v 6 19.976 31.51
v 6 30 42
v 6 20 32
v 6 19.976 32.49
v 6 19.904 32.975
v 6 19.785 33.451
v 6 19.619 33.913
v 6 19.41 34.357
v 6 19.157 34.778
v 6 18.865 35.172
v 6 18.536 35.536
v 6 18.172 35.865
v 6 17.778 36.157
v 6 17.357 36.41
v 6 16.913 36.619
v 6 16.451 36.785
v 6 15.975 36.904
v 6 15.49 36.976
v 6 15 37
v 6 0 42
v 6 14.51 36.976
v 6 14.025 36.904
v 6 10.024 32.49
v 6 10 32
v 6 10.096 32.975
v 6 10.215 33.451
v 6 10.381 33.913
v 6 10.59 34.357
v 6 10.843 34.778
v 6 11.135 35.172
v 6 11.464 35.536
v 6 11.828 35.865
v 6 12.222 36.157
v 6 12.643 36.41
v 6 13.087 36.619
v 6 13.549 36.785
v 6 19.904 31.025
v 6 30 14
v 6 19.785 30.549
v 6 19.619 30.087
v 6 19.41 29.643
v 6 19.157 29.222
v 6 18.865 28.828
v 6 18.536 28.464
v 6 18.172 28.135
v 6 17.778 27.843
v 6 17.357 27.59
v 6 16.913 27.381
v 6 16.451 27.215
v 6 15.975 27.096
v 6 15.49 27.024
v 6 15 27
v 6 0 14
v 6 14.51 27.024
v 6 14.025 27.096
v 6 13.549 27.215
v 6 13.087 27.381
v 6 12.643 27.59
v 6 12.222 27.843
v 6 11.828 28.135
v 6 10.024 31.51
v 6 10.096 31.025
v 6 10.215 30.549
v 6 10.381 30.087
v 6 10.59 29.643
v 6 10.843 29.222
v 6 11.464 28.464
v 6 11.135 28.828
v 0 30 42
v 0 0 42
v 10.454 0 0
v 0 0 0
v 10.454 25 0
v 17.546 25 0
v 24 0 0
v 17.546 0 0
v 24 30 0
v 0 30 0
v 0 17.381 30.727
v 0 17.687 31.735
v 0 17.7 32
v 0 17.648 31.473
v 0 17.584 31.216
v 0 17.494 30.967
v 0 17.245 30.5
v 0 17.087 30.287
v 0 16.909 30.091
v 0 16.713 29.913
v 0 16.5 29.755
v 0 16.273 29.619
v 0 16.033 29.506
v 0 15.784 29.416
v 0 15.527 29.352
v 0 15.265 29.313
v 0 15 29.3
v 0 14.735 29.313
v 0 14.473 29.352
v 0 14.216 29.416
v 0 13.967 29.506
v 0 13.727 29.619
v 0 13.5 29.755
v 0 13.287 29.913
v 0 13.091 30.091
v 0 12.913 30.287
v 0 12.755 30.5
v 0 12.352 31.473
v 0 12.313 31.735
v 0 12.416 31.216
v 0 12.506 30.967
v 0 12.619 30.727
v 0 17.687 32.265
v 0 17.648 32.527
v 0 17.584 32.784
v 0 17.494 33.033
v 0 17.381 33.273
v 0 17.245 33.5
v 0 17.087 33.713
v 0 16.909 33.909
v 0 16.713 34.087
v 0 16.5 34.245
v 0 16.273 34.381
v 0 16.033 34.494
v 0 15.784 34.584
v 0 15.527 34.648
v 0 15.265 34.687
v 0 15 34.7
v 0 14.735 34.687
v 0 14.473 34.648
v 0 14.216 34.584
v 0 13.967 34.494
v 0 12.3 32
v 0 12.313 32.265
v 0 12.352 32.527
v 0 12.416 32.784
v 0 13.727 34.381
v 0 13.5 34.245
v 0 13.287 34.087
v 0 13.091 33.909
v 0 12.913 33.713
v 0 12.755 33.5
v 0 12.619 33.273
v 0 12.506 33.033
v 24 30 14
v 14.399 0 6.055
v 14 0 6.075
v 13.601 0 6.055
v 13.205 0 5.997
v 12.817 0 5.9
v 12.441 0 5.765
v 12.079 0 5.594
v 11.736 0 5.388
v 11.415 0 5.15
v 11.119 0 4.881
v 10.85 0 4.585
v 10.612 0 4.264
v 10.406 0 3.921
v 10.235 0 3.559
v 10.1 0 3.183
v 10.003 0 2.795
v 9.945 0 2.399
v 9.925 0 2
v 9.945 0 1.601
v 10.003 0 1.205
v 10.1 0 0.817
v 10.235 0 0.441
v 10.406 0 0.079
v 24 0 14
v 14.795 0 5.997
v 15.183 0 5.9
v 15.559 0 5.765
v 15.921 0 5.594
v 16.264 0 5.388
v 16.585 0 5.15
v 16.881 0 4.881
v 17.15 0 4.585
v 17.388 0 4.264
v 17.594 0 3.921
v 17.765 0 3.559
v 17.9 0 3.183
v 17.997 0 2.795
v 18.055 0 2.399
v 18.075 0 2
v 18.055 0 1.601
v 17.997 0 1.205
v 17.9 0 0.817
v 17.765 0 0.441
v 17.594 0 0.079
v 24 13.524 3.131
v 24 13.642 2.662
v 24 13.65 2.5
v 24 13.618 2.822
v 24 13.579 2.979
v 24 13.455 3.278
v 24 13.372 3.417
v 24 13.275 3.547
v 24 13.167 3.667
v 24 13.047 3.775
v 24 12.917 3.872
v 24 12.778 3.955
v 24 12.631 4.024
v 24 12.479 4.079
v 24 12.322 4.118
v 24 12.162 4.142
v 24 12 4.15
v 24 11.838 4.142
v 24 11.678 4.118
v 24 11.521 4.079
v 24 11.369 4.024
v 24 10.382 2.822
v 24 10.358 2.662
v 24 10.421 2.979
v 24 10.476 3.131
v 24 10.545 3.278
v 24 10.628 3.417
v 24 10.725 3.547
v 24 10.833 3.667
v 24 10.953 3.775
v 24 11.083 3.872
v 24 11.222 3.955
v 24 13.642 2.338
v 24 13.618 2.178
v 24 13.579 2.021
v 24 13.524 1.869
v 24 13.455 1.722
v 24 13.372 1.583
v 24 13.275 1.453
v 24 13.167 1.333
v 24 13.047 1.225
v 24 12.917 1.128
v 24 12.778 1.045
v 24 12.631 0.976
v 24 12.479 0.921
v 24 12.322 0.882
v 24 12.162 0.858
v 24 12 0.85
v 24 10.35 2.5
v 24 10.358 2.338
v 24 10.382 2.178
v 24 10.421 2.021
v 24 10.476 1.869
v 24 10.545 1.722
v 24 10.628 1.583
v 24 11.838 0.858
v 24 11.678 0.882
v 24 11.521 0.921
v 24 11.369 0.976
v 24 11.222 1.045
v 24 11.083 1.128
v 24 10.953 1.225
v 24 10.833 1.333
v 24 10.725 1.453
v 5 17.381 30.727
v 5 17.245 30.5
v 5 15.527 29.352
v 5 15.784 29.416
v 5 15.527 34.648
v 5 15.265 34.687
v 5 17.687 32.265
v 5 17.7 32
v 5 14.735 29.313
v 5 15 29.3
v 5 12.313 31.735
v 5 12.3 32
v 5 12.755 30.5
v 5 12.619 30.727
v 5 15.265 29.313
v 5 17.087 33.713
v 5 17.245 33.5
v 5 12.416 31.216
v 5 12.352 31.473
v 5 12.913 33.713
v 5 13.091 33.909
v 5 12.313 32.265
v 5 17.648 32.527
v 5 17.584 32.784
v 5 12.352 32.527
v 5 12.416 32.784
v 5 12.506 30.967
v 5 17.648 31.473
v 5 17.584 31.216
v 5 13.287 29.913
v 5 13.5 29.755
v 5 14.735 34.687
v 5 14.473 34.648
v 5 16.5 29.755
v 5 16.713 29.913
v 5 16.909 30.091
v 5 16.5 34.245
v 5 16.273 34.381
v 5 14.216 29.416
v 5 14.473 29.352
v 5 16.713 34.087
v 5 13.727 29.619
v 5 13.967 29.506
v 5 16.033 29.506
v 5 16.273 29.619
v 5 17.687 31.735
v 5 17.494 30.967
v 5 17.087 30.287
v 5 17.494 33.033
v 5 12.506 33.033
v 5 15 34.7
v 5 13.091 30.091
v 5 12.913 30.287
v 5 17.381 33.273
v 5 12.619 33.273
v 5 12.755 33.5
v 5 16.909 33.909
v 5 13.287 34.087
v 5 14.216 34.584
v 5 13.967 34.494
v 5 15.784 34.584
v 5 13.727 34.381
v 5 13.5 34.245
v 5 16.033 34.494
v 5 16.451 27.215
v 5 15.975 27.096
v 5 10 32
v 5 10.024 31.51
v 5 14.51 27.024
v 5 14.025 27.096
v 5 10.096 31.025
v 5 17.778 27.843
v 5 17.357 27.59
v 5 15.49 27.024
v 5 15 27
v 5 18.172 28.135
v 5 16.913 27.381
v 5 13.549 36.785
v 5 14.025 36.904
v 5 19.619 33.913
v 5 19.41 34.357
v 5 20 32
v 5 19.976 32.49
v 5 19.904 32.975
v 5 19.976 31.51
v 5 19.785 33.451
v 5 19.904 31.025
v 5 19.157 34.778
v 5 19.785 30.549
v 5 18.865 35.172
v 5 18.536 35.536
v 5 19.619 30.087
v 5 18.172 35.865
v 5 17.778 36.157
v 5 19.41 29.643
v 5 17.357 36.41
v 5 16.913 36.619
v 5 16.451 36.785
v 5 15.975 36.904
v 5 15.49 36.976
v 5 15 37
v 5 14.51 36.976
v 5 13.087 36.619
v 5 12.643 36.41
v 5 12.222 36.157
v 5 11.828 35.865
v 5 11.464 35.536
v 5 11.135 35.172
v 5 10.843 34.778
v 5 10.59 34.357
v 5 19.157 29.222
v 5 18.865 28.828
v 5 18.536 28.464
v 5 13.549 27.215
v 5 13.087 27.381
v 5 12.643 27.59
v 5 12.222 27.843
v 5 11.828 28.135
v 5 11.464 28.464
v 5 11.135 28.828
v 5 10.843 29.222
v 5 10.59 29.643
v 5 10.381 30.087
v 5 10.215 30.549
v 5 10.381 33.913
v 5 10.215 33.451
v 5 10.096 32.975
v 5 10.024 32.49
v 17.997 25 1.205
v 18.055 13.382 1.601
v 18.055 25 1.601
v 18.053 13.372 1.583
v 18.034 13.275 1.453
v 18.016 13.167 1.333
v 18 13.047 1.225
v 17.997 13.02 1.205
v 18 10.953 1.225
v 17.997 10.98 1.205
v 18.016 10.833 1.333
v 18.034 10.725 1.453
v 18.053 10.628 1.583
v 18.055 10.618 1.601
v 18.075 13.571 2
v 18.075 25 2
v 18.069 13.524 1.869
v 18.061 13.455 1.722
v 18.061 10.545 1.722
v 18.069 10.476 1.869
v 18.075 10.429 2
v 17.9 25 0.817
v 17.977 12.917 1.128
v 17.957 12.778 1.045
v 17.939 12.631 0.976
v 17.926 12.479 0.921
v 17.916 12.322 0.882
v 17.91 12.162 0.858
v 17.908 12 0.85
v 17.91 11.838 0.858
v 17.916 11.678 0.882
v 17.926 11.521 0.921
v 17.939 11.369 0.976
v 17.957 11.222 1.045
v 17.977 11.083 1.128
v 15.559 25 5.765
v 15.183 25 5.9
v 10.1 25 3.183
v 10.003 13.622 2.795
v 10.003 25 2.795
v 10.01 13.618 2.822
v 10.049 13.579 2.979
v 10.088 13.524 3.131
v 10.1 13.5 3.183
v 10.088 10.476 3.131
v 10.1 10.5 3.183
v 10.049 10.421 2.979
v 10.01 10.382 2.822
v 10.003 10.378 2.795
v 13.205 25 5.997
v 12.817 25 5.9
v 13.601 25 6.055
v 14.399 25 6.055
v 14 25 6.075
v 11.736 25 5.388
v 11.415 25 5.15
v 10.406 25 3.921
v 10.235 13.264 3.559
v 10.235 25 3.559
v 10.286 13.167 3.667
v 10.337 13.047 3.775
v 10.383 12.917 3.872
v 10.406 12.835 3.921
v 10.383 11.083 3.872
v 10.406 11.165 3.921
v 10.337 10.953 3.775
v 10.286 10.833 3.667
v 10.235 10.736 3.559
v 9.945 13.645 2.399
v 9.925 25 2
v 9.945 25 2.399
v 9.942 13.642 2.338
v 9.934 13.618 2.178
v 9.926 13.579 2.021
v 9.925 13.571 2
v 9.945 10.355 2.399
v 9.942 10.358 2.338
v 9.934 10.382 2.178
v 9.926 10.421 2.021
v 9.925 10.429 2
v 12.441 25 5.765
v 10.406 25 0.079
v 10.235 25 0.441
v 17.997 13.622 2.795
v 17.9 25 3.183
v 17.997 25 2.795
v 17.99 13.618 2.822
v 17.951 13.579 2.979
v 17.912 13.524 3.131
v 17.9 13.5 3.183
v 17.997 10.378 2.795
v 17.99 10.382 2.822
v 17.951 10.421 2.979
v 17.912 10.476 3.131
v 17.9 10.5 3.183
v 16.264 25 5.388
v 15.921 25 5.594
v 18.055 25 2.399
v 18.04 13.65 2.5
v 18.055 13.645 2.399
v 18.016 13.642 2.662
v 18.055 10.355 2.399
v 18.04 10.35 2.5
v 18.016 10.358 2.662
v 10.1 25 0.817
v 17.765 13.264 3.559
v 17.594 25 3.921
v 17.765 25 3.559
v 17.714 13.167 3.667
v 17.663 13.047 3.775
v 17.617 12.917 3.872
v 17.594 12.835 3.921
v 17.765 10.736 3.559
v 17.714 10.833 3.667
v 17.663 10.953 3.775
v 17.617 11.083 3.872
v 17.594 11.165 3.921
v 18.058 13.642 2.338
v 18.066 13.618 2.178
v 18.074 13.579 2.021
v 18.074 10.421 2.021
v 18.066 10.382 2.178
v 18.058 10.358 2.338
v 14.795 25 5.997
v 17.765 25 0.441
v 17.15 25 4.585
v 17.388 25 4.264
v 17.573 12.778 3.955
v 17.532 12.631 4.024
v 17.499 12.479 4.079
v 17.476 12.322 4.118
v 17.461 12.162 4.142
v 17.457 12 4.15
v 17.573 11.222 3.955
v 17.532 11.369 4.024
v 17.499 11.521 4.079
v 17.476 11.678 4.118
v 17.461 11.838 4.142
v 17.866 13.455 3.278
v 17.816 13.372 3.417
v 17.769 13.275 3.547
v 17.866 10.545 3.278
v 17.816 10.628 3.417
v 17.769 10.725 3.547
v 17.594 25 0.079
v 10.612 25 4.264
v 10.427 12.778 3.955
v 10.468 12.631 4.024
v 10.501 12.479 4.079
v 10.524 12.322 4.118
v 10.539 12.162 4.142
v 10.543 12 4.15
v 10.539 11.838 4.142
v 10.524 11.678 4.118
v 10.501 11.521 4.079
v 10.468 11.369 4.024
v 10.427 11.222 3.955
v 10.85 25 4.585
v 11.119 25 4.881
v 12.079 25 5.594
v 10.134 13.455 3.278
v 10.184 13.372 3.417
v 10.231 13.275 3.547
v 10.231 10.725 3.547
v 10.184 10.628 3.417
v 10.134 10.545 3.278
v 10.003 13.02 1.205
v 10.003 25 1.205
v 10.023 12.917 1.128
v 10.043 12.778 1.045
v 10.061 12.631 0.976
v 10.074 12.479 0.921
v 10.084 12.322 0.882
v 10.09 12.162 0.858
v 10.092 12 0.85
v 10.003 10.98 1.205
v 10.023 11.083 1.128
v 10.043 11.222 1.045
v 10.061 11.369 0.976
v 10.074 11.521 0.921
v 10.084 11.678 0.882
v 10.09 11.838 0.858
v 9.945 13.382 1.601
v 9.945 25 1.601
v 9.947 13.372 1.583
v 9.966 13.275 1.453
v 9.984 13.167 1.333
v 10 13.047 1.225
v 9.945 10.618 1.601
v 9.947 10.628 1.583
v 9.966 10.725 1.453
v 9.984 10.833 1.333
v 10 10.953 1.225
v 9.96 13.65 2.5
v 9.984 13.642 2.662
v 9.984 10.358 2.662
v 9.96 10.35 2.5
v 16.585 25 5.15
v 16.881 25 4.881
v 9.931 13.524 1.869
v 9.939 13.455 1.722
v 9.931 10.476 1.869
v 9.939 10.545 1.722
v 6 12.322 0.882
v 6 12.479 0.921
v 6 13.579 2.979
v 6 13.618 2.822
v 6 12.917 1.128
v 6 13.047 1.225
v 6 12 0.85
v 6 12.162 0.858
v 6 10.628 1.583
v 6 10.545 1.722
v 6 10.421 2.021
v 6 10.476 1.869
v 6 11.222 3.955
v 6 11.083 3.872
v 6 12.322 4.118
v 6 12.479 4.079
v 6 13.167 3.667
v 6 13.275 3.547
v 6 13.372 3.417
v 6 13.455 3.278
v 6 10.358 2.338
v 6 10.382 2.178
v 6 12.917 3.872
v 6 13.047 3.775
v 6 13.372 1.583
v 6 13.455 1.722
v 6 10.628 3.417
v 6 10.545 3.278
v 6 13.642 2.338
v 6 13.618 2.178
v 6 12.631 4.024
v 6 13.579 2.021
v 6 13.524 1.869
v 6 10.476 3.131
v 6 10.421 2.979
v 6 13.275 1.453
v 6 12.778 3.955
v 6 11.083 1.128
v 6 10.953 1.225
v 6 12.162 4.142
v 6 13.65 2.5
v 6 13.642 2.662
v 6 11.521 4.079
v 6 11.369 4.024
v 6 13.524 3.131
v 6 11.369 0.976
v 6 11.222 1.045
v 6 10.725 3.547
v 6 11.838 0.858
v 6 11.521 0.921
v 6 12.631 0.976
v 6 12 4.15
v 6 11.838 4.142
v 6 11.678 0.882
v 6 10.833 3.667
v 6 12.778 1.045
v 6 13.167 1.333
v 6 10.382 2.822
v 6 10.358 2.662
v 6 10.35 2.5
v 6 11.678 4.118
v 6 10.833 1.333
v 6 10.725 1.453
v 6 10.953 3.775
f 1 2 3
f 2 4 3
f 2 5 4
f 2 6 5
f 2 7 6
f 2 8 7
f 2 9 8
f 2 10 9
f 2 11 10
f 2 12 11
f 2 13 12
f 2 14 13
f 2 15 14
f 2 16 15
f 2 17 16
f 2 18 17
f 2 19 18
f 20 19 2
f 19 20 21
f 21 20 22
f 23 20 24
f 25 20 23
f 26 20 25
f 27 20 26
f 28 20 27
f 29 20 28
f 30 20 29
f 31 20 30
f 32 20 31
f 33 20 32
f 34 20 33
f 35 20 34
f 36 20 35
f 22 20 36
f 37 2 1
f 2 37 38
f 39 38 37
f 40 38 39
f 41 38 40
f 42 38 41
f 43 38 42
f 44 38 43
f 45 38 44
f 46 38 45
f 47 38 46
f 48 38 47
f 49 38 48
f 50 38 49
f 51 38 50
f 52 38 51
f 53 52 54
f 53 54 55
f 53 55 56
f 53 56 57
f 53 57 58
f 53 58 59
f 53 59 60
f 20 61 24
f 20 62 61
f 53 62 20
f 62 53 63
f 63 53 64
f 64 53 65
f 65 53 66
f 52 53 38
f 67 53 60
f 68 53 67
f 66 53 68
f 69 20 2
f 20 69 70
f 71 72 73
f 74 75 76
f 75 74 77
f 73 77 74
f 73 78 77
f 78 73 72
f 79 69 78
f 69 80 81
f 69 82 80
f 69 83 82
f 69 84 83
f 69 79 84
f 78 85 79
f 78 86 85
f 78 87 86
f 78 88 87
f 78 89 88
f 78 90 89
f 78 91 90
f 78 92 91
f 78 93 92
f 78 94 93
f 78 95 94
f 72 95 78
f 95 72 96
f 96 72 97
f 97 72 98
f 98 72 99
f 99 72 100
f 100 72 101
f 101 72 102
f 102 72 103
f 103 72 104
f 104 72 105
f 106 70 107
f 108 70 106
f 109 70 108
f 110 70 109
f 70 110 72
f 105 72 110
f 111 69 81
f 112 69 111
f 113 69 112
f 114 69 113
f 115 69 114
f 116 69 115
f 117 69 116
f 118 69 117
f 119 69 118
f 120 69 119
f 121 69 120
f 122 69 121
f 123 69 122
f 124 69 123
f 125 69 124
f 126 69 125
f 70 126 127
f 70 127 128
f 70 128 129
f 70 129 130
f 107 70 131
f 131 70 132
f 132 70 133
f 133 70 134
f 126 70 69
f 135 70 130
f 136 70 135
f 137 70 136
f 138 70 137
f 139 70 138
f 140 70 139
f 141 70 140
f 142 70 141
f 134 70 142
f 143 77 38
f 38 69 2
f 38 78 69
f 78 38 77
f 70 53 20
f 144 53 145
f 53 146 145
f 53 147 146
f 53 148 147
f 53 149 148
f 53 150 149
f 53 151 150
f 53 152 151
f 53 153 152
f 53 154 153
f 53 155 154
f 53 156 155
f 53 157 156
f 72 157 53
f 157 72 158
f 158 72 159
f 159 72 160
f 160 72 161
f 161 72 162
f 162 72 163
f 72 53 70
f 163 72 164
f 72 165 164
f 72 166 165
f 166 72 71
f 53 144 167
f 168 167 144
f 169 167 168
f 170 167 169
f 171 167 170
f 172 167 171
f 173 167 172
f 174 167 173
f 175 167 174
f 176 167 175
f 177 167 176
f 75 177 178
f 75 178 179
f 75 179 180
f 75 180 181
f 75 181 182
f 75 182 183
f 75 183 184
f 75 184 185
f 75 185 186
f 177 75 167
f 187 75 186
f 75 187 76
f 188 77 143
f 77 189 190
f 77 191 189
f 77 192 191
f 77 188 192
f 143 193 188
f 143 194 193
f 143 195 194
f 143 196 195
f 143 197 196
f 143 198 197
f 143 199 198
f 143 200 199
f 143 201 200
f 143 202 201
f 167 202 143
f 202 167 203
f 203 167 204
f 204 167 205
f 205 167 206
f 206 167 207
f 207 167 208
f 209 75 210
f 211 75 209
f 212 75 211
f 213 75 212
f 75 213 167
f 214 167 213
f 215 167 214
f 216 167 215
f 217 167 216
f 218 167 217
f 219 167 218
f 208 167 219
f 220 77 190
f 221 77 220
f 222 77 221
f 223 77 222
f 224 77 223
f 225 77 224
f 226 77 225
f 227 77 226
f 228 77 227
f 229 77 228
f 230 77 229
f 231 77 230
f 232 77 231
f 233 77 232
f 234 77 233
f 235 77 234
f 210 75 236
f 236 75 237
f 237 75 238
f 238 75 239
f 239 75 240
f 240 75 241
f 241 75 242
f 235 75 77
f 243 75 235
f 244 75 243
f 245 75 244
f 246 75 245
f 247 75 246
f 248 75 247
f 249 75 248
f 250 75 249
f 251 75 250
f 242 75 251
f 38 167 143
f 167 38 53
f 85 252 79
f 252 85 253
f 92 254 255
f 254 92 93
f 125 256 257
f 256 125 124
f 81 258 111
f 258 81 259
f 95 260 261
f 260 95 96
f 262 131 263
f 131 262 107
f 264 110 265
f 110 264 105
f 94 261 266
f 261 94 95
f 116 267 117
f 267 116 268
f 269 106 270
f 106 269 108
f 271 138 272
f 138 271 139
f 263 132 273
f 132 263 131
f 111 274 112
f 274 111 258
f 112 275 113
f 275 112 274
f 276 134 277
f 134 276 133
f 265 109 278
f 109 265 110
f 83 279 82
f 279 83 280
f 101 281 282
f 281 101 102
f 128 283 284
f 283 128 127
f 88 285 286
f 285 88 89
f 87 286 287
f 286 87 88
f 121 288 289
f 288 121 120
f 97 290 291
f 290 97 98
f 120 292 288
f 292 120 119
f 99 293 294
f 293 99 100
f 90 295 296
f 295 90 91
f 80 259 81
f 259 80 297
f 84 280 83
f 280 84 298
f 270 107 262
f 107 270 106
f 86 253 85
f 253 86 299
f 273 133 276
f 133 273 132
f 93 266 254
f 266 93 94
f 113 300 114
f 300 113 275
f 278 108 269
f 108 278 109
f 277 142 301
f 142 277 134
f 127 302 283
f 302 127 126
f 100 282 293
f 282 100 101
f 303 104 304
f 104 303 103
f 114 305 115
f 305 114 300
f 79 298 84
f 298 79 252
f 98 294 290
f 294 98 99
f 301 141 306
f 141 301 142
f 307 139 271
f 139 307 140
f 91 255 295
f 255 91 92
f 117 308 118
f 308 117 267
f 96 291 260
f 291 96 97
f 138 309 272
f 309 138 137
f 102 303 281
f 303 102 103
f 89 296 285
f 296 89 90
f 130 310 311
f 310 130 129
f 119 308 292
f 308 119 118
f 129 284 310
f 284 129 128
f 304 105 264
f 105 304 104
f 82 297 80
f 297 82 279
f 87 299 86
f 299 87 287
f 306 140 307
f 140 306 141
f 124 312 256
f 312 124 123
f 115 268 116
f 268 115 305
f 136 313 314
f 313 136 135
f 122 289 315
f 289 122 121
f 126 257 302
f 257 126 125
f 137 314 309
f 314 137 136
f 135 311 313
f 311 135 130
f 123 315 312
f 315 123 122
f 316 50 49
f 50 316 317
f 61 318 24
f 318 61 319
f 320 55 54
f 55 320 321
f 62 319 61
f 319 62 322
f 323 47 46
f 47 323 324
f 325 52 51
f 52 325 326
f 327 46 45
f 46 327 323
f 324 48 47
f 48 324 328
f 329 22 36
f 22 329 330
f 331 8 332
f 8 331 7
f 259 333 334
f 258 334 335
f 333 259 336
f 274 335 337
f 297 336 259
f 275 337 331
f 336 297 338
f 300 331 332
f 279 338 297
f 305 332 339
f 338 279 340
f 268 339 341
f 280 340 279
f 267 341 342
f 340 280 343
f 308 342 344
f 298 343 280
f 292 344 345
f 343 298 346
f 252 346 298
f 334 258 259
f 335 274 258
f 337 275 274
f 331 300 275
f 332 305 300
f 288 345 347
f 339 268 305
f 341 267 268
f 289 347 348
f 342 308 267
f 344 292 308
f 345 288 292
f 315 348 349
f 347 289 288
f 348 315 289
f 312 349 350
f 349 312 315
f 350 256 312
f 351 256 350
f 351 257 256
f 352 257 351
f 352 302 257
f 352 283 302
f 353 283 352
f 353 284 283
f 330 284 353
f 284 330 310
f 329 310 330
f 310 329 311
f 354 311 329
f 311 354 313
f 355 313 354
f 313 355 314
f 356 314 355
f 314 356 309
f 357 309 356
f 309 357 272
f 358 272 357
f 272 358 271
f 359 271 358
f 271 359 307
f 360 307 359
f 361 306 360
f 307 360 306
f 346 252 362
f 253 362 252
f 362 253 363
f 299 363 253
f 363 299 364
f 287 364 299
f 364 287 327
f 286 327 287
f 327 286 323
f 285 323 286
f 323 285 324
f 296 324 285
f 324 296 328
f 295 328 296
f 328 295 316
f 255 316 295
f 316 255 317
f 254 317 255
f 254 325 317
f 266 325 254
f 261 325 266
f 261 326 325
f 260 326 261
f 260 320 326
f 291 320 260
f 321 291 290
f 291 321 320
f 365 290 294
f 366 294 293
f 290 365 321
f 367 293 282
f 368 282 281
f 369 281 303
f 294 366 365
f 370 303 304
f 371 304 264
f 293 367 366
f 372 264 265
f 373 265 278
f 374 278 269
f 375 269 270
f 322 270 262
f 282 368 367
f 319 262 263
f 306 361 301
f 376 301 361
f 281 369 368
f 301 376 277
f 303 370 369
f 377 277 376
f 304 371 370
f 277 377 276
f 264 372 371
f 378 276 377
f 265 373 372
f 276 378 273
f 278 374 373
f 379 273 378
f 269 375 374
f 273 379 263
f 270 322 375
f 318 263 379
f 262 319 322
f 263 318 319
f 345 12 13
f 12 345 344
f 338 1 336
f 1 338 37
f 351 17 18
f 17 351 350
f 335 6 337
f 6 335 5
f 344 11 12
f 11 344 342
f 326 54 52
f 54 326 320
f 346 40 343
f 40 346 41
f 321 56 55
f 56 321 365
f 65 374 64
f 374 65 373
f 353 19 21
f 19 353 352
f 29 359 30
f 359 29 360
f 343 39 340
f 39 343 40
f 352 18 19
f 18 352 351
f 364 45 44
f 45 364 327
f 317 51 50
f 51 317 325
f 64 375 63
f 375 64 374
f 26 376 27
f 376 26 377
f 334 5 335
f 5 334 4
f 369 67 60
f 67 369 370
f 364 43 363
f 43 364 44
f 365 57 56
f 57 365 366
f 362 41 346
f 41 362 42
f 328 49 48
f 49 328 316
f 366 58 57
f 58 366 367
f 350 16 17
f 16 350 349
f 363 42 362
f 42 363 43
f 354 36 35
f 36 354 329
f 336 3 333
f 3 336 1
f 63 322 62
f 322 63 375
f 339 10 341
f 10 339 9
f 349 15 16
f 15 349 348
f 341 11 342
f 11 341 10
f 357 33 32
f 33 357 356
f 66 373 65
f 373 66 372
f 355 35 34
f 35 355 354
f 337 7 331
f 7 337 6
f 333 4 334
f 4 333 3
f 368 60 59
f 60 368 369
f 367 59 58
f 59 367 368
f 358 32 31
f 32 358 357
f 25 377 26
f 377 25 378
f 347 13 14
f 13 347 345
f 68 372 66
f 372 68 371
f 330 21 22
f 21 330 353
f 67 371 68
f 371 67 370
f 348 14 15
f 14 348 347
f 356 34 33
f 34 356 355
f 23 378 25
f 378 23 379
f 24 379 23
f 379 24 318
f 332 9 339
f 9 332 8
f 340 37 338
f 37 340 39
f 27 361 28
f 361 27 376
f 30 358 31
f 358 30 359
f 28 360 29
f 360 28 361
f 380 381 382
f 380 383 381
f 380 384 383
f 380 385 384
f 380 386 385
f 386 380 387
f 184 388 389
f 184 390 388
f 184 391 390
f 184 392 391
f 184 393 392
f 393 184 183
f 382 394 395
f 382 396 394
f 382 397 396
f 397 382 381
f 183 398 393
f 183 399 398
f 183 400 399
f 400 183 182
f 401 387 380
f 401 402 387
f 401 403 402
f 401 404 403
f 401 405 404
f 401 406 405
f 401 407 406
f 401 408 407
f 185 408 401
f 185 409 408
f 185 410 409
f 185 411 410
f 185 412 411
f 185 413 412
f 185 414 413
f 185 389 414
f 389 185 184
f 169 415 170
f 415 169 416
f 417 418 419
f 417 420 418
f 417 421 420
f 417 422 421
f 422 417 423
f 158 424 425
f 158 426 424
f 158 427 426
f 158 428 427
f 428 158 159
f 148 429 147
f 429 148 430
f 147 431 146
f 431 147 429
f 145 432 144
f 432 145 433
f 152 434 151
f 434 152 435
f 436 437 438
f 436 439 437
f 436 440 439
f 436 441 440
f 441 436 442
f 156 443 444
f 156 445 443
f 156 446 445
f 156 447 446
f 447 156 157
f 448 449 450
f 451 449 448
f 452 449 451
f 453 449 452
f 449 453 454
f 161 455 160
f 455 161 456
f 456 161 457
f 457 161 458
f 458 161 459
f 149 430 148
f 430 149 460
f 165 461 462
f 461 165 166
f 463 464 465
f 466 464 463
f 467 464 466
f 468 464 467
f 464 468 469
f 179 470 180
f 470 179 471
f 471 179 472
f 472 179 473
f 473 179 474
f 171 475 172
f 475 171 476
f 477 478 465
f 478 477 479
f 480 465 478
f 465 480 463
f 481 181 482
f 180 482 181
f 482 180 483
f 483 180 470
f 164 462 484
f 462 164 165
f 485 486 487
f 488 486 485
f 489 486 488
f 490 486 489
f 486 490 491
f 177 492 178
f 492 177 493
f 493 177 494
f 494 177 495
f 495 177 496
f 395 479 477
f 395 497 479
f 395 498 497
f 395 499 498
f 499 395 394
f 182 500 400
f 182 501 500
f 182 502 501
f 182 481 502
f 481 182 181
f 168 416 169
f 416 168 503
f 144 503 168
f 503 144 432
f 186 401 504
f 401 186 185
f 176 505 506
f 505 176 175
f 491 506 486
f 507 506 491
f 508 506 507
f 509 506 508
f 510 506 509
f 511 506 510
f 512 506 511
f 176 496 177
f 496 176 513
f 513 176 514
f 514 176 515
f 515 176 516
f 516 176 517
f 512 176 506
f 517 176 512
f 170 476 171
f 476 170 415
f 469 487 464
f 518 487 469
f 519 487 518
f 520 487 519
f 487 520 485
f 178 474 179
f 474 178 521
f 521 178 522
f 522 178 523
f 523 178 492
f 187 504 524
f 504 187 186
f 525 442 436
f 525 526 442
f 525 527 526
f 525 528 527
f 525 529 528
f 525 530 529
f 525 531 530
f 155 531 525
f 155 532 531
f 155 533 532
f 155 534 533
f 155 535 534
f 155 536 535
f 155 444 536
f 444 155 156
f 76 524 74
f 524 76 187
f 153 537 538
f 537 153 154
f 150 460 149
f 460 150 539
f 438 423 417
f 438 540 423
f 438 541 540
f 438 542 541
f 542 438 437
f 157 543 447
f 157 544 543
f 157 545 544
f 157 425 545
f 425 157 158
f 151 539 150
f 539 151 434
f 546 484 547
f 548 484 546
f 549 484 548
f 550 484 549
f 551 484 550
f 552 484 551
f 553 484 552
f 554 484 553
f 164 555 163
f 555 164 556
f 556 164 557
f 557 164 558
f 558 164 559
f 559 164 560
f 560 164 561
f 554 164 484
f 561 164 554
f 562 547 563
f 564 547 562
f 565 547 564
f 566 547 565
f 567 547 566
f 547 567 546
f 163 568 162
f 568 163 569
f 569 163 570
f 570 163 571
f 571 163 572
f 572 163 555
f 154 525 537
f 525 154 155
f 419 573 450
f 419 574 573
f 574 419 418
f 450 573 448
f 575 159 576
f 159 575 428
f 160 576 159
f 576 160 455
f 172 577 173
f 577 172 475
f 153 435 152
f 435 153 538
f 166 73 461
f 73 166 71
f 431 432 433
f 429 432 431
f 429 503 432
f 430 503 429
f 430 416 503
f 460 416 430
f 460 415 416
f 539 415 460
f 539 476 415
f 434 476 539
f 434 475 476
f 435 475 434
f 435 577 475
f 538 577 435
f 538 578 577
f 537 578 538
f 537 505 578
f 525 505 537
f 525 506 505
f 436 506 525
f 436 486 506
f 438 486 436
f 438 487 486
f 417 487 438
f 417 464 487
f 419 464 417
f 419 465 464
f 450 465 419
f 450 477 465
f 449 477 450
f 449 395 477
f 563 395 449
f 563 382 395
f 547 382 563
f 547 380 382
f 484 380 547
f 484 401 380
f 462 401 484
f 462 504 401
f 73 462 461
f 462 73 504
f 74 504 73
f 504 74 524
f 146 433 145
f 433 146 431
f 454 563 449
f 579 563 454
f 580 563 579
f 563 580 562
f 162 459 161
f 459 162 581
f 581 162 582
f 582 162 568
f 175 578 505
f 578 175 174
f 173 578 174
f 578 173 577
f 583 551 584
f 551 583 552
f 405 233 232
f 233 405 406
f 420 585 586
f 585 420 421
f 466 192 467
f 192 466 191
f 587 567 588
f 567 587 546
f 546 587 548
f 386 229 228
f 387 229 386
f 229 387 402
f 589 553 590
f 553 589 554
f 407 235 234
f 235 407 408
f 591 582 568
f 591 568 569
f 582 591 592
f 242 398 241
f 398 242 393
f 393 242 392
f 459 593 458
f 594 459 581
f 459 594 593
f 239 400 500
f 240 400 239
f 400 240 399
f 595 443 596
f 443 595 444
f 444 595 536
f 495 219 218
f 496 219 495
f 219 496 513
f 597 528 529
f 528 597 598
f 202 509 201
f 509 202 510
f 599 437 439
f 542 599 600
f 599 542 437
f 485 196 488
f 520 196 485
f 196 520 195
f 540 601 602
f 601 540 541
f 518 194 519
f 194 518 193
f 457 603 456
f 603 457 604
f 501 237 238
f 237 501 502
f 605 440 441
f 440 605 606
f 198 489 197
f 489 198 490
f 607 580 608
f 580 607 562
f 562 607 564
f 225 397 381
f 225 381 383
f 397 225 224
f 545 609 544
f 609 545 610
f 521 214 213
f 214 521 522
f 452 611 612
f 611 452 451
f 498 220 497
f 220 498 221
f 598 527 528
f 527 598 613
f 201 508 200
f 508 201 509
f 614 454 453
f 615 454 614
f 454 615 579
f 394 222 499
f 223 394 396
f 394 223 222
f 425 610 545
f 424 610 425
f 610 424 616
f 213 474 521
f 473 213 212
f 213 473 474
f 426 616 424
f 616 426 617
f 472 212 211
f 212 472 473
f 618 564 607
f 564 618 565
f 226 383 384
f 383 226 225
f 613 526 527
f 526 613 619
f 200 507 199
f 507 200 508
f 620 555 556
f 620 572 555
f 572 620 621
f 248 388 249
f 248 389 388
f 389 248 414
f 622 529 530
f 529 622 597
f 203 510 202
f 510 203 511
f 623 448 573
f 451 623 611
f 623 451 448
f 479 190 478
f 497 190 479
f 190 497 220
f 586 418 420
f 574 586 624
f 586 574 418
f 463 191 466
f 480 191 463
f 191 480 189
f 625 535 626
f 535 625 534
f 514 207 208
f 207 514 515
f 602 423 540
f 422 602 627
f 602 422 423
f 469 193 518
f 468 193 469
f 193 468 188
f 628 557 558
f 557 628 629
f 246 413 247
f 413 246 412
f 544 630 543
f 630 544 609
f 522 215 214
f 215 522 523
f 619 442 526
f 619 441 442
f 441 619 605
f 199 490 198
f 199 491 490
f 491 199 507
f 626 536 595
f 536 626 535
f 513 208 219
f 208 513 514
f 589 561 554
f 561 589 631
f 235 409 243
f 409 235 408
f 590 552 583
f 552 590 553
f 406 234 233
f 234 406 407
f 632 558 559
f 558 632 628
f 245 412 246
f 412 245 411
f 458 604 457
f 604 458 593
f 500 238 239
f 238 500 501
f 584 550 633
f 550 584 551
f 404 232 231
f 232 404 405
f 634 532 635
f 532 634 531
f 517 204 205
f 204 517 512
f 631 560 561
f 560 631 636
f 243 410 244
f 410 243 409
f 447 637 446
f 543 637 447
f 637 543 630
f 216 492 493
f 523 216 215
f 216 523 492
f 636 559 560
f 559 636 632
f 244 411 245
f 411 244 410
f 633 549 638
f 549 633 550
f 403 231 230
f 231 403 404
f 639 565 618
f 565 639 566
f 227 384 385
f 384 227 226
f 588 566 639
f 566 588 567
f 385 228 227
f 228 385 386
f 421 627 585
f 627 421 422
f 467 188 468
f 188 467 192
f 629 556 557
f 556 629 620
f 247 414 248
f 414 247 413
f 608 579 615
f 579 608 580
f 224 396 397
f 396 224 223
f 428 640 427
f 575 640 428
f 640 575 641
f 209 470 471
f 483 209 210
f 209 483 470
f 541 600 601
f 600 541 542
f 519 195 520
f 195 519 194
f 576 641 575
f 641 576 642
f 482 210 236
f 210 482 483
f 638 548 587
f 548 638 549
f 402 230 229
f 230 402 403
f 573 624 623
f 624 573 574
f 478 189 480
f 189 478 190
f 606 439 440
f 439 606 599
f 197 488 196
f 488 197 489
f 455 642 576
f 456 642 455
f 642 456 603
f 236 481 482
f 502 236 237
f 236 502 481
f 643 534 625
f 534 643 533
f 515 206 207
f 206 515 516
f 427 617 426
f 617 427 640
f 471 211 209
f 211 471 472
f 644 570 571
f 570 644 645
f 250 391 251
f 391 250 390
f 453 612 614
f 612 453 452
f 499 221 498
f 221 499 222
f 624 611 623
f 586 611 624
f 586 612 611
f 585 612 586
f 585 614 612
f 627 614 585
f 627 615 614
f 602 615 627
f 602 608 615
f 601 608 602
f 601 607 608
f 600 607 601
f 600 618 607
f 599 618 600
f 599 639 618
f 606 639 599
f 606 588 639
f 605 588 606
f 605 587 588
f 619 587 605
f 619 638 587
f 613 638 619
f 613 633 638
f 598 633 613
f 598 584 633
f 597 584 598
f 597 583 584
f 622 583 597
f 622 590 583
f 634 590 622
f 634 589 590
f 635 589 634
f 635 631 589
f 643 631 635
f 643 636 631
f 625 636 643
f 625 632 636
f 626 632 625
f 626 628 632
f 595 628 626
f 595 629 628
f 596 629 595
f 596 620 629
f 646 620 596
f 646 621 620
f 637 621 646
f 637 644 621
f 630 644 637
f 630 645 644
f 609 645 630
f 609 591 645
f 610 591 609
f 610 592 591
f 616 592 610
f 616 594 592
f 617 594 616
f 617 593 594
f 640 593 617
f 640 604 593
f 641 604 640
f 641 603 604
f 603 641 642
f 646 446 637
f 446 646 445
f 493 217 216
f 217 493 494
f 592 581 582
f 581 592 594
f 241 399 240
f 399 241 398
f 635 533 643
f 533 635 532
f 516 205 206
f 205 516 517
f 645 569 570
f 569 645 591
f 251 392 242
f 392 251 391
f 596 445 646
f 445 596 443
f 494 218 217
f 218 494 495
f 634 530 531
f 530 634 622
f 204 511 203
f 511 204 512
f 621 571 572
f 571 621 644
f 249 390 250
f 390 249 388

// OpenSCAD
// file: common.scad
// OpenRook: shared dimensions for every printed part. Change a number here and re-run
// ../render.sh. Keep SQUARE in step with DEFAULT_SQUARE_MM in firmware/OpenRook/config.h.

$fn = 64;

// ---------------------------------------------------------------- board
SQUARE = 40;            // square pitch (mm)
TILE_SQUARES = 4;       // a playing tile is 4x4 squares; four tiles make the board
TILE_T = 3.4;           // tile thickness
INLAY_D = 0.6;          // dark-square recess depth for a second colour (0 = flat tile)
REED_L = 15;            // reed switch glass length (2x14 mm glass + margin)
REED_W = 2.6;           // groove width for glass body
GROOVE_D = 2.2;         // depth of wire/switch grooves on the tile underside
WIRE_W = 1.6;           // groove width for legs and wires
DIODE_L = 4.5;          // 1N4148 body (DO-35)
DIODE_W = 2.2;

// ---------------------------------------------------------------- pieces
PIECE_BASE = 20;        // base diameter: must stay <= SQUARE/2 so pieces pass between others
PIECE_MAG_D = 10.3;     // pocket for a 10x3 mm N52 disc magnet (+ clearance)
PIECE_MAG_H = 3.2;
FELT = 0;               // stick 0.5-1 mm felt under each piece; no geometry needed

// ---------------------------------------------------------------- hardware
EXTRUSION = 20;         // 2020 aluminium profile
M5 = 5.4;               // M5 clearance
M3 = 3.3;               // M3 clearance
M3_NUT = 6.4;           // across flats + clearance
ROD = 8;                // smooth rods
ROD_FIT = 8.15;
LM8UU_D = 15.2;
LM8UU_L = 24;
F623_D = 10.4;          // F623ZZ flanged bearing: 10 mm OD, 4 mm wide, 11.5 mm flange
F623_W = 4;
F623_FLANGE = 11.6;
NEMA = 42.3;
NEMA_HOLES = 31;
NEMA_BOSS = 22.5;
BELT_W = 6;             // GT2 6 mm
SERVO_W = 12.6;         // SG90 / MG90S body
SERVO_L = 23.2;
SERVO_TAB = 32.5;       // tab-to-tab length
CARRIAGE_MAG_D = 15.3;  // 15x4 mm N52 magnet on the lifting arm
CARRIAGE_MAG_H = 4.2;

// ---------------------------------------------------------------- frame
// Inside the frame: magnet travel 425 x 335 mm plus the gantry around it.
FRAME_X = 560;          // outer size of the 2020 rectangle (front/back extrusions)
FRAME_Y = 480;          // outer size (side extrusions are FRAME_Y - 40 long)
ROD_SPACING_X = 40;     // the two X rods, centre to centre

module rounded_box(size, r = 2) {
  hull() for (x = [r, size[0] - r], y = [r, size[1] - r]) translate([x, y, 0]) cylinder(r = r, h = size[2]);
}

module m3_nut_trap(h = 3) { cylinder(d = M3_NUT / cos(30), h = h, $fn = 6); }
// main file
// Holds the end of an 8 mm Y rod against the inside face of a side extrusion (print 4).
// The rod axis sits 30 mm below the top of the frame and 14 mm in from the extrusion face.
include <common.scad>
DROP = 30;   // rod axis below the frame top
INSET = 14;  // rod axis away from the extrusion face
difference() {
  union() {
    cube([6, 30, DROP + 12]);                         // plate against the extrusion
    translate([0, 0, 0]) cube([INSET + 10, 30, 14]);  // arm under the rod
  }
  // M5 into the extrusion slot (centre of a 2020's inner face is 10 mm below the top).
  translate([-1, 15, DROP + 12 - 10]) rotate([0, 90, 0]) cylinder(d = M5, h = 8);
  translate([5, 15, DROP + 12 - 10]) rotate([0, 90, 0]) cylinder(d = 10, h = 30);
  // Rod socket from the inner side, with a pinch slot and an M3 clamp screw.
  translate([INSET, -1, 14 - (DROP + 12 - DROP)]) rotate([-90, 0, 0]) cylinder(d = ROD_FIT, h = 26);
  translate([INSET - 0.75, -1, -1]) cube([1.5, 26, 6]);
  translate([INSET - 8, 12, 2.5]) rotate([0, 90, 0]) cylinder(d = M3, h = 20);
}
